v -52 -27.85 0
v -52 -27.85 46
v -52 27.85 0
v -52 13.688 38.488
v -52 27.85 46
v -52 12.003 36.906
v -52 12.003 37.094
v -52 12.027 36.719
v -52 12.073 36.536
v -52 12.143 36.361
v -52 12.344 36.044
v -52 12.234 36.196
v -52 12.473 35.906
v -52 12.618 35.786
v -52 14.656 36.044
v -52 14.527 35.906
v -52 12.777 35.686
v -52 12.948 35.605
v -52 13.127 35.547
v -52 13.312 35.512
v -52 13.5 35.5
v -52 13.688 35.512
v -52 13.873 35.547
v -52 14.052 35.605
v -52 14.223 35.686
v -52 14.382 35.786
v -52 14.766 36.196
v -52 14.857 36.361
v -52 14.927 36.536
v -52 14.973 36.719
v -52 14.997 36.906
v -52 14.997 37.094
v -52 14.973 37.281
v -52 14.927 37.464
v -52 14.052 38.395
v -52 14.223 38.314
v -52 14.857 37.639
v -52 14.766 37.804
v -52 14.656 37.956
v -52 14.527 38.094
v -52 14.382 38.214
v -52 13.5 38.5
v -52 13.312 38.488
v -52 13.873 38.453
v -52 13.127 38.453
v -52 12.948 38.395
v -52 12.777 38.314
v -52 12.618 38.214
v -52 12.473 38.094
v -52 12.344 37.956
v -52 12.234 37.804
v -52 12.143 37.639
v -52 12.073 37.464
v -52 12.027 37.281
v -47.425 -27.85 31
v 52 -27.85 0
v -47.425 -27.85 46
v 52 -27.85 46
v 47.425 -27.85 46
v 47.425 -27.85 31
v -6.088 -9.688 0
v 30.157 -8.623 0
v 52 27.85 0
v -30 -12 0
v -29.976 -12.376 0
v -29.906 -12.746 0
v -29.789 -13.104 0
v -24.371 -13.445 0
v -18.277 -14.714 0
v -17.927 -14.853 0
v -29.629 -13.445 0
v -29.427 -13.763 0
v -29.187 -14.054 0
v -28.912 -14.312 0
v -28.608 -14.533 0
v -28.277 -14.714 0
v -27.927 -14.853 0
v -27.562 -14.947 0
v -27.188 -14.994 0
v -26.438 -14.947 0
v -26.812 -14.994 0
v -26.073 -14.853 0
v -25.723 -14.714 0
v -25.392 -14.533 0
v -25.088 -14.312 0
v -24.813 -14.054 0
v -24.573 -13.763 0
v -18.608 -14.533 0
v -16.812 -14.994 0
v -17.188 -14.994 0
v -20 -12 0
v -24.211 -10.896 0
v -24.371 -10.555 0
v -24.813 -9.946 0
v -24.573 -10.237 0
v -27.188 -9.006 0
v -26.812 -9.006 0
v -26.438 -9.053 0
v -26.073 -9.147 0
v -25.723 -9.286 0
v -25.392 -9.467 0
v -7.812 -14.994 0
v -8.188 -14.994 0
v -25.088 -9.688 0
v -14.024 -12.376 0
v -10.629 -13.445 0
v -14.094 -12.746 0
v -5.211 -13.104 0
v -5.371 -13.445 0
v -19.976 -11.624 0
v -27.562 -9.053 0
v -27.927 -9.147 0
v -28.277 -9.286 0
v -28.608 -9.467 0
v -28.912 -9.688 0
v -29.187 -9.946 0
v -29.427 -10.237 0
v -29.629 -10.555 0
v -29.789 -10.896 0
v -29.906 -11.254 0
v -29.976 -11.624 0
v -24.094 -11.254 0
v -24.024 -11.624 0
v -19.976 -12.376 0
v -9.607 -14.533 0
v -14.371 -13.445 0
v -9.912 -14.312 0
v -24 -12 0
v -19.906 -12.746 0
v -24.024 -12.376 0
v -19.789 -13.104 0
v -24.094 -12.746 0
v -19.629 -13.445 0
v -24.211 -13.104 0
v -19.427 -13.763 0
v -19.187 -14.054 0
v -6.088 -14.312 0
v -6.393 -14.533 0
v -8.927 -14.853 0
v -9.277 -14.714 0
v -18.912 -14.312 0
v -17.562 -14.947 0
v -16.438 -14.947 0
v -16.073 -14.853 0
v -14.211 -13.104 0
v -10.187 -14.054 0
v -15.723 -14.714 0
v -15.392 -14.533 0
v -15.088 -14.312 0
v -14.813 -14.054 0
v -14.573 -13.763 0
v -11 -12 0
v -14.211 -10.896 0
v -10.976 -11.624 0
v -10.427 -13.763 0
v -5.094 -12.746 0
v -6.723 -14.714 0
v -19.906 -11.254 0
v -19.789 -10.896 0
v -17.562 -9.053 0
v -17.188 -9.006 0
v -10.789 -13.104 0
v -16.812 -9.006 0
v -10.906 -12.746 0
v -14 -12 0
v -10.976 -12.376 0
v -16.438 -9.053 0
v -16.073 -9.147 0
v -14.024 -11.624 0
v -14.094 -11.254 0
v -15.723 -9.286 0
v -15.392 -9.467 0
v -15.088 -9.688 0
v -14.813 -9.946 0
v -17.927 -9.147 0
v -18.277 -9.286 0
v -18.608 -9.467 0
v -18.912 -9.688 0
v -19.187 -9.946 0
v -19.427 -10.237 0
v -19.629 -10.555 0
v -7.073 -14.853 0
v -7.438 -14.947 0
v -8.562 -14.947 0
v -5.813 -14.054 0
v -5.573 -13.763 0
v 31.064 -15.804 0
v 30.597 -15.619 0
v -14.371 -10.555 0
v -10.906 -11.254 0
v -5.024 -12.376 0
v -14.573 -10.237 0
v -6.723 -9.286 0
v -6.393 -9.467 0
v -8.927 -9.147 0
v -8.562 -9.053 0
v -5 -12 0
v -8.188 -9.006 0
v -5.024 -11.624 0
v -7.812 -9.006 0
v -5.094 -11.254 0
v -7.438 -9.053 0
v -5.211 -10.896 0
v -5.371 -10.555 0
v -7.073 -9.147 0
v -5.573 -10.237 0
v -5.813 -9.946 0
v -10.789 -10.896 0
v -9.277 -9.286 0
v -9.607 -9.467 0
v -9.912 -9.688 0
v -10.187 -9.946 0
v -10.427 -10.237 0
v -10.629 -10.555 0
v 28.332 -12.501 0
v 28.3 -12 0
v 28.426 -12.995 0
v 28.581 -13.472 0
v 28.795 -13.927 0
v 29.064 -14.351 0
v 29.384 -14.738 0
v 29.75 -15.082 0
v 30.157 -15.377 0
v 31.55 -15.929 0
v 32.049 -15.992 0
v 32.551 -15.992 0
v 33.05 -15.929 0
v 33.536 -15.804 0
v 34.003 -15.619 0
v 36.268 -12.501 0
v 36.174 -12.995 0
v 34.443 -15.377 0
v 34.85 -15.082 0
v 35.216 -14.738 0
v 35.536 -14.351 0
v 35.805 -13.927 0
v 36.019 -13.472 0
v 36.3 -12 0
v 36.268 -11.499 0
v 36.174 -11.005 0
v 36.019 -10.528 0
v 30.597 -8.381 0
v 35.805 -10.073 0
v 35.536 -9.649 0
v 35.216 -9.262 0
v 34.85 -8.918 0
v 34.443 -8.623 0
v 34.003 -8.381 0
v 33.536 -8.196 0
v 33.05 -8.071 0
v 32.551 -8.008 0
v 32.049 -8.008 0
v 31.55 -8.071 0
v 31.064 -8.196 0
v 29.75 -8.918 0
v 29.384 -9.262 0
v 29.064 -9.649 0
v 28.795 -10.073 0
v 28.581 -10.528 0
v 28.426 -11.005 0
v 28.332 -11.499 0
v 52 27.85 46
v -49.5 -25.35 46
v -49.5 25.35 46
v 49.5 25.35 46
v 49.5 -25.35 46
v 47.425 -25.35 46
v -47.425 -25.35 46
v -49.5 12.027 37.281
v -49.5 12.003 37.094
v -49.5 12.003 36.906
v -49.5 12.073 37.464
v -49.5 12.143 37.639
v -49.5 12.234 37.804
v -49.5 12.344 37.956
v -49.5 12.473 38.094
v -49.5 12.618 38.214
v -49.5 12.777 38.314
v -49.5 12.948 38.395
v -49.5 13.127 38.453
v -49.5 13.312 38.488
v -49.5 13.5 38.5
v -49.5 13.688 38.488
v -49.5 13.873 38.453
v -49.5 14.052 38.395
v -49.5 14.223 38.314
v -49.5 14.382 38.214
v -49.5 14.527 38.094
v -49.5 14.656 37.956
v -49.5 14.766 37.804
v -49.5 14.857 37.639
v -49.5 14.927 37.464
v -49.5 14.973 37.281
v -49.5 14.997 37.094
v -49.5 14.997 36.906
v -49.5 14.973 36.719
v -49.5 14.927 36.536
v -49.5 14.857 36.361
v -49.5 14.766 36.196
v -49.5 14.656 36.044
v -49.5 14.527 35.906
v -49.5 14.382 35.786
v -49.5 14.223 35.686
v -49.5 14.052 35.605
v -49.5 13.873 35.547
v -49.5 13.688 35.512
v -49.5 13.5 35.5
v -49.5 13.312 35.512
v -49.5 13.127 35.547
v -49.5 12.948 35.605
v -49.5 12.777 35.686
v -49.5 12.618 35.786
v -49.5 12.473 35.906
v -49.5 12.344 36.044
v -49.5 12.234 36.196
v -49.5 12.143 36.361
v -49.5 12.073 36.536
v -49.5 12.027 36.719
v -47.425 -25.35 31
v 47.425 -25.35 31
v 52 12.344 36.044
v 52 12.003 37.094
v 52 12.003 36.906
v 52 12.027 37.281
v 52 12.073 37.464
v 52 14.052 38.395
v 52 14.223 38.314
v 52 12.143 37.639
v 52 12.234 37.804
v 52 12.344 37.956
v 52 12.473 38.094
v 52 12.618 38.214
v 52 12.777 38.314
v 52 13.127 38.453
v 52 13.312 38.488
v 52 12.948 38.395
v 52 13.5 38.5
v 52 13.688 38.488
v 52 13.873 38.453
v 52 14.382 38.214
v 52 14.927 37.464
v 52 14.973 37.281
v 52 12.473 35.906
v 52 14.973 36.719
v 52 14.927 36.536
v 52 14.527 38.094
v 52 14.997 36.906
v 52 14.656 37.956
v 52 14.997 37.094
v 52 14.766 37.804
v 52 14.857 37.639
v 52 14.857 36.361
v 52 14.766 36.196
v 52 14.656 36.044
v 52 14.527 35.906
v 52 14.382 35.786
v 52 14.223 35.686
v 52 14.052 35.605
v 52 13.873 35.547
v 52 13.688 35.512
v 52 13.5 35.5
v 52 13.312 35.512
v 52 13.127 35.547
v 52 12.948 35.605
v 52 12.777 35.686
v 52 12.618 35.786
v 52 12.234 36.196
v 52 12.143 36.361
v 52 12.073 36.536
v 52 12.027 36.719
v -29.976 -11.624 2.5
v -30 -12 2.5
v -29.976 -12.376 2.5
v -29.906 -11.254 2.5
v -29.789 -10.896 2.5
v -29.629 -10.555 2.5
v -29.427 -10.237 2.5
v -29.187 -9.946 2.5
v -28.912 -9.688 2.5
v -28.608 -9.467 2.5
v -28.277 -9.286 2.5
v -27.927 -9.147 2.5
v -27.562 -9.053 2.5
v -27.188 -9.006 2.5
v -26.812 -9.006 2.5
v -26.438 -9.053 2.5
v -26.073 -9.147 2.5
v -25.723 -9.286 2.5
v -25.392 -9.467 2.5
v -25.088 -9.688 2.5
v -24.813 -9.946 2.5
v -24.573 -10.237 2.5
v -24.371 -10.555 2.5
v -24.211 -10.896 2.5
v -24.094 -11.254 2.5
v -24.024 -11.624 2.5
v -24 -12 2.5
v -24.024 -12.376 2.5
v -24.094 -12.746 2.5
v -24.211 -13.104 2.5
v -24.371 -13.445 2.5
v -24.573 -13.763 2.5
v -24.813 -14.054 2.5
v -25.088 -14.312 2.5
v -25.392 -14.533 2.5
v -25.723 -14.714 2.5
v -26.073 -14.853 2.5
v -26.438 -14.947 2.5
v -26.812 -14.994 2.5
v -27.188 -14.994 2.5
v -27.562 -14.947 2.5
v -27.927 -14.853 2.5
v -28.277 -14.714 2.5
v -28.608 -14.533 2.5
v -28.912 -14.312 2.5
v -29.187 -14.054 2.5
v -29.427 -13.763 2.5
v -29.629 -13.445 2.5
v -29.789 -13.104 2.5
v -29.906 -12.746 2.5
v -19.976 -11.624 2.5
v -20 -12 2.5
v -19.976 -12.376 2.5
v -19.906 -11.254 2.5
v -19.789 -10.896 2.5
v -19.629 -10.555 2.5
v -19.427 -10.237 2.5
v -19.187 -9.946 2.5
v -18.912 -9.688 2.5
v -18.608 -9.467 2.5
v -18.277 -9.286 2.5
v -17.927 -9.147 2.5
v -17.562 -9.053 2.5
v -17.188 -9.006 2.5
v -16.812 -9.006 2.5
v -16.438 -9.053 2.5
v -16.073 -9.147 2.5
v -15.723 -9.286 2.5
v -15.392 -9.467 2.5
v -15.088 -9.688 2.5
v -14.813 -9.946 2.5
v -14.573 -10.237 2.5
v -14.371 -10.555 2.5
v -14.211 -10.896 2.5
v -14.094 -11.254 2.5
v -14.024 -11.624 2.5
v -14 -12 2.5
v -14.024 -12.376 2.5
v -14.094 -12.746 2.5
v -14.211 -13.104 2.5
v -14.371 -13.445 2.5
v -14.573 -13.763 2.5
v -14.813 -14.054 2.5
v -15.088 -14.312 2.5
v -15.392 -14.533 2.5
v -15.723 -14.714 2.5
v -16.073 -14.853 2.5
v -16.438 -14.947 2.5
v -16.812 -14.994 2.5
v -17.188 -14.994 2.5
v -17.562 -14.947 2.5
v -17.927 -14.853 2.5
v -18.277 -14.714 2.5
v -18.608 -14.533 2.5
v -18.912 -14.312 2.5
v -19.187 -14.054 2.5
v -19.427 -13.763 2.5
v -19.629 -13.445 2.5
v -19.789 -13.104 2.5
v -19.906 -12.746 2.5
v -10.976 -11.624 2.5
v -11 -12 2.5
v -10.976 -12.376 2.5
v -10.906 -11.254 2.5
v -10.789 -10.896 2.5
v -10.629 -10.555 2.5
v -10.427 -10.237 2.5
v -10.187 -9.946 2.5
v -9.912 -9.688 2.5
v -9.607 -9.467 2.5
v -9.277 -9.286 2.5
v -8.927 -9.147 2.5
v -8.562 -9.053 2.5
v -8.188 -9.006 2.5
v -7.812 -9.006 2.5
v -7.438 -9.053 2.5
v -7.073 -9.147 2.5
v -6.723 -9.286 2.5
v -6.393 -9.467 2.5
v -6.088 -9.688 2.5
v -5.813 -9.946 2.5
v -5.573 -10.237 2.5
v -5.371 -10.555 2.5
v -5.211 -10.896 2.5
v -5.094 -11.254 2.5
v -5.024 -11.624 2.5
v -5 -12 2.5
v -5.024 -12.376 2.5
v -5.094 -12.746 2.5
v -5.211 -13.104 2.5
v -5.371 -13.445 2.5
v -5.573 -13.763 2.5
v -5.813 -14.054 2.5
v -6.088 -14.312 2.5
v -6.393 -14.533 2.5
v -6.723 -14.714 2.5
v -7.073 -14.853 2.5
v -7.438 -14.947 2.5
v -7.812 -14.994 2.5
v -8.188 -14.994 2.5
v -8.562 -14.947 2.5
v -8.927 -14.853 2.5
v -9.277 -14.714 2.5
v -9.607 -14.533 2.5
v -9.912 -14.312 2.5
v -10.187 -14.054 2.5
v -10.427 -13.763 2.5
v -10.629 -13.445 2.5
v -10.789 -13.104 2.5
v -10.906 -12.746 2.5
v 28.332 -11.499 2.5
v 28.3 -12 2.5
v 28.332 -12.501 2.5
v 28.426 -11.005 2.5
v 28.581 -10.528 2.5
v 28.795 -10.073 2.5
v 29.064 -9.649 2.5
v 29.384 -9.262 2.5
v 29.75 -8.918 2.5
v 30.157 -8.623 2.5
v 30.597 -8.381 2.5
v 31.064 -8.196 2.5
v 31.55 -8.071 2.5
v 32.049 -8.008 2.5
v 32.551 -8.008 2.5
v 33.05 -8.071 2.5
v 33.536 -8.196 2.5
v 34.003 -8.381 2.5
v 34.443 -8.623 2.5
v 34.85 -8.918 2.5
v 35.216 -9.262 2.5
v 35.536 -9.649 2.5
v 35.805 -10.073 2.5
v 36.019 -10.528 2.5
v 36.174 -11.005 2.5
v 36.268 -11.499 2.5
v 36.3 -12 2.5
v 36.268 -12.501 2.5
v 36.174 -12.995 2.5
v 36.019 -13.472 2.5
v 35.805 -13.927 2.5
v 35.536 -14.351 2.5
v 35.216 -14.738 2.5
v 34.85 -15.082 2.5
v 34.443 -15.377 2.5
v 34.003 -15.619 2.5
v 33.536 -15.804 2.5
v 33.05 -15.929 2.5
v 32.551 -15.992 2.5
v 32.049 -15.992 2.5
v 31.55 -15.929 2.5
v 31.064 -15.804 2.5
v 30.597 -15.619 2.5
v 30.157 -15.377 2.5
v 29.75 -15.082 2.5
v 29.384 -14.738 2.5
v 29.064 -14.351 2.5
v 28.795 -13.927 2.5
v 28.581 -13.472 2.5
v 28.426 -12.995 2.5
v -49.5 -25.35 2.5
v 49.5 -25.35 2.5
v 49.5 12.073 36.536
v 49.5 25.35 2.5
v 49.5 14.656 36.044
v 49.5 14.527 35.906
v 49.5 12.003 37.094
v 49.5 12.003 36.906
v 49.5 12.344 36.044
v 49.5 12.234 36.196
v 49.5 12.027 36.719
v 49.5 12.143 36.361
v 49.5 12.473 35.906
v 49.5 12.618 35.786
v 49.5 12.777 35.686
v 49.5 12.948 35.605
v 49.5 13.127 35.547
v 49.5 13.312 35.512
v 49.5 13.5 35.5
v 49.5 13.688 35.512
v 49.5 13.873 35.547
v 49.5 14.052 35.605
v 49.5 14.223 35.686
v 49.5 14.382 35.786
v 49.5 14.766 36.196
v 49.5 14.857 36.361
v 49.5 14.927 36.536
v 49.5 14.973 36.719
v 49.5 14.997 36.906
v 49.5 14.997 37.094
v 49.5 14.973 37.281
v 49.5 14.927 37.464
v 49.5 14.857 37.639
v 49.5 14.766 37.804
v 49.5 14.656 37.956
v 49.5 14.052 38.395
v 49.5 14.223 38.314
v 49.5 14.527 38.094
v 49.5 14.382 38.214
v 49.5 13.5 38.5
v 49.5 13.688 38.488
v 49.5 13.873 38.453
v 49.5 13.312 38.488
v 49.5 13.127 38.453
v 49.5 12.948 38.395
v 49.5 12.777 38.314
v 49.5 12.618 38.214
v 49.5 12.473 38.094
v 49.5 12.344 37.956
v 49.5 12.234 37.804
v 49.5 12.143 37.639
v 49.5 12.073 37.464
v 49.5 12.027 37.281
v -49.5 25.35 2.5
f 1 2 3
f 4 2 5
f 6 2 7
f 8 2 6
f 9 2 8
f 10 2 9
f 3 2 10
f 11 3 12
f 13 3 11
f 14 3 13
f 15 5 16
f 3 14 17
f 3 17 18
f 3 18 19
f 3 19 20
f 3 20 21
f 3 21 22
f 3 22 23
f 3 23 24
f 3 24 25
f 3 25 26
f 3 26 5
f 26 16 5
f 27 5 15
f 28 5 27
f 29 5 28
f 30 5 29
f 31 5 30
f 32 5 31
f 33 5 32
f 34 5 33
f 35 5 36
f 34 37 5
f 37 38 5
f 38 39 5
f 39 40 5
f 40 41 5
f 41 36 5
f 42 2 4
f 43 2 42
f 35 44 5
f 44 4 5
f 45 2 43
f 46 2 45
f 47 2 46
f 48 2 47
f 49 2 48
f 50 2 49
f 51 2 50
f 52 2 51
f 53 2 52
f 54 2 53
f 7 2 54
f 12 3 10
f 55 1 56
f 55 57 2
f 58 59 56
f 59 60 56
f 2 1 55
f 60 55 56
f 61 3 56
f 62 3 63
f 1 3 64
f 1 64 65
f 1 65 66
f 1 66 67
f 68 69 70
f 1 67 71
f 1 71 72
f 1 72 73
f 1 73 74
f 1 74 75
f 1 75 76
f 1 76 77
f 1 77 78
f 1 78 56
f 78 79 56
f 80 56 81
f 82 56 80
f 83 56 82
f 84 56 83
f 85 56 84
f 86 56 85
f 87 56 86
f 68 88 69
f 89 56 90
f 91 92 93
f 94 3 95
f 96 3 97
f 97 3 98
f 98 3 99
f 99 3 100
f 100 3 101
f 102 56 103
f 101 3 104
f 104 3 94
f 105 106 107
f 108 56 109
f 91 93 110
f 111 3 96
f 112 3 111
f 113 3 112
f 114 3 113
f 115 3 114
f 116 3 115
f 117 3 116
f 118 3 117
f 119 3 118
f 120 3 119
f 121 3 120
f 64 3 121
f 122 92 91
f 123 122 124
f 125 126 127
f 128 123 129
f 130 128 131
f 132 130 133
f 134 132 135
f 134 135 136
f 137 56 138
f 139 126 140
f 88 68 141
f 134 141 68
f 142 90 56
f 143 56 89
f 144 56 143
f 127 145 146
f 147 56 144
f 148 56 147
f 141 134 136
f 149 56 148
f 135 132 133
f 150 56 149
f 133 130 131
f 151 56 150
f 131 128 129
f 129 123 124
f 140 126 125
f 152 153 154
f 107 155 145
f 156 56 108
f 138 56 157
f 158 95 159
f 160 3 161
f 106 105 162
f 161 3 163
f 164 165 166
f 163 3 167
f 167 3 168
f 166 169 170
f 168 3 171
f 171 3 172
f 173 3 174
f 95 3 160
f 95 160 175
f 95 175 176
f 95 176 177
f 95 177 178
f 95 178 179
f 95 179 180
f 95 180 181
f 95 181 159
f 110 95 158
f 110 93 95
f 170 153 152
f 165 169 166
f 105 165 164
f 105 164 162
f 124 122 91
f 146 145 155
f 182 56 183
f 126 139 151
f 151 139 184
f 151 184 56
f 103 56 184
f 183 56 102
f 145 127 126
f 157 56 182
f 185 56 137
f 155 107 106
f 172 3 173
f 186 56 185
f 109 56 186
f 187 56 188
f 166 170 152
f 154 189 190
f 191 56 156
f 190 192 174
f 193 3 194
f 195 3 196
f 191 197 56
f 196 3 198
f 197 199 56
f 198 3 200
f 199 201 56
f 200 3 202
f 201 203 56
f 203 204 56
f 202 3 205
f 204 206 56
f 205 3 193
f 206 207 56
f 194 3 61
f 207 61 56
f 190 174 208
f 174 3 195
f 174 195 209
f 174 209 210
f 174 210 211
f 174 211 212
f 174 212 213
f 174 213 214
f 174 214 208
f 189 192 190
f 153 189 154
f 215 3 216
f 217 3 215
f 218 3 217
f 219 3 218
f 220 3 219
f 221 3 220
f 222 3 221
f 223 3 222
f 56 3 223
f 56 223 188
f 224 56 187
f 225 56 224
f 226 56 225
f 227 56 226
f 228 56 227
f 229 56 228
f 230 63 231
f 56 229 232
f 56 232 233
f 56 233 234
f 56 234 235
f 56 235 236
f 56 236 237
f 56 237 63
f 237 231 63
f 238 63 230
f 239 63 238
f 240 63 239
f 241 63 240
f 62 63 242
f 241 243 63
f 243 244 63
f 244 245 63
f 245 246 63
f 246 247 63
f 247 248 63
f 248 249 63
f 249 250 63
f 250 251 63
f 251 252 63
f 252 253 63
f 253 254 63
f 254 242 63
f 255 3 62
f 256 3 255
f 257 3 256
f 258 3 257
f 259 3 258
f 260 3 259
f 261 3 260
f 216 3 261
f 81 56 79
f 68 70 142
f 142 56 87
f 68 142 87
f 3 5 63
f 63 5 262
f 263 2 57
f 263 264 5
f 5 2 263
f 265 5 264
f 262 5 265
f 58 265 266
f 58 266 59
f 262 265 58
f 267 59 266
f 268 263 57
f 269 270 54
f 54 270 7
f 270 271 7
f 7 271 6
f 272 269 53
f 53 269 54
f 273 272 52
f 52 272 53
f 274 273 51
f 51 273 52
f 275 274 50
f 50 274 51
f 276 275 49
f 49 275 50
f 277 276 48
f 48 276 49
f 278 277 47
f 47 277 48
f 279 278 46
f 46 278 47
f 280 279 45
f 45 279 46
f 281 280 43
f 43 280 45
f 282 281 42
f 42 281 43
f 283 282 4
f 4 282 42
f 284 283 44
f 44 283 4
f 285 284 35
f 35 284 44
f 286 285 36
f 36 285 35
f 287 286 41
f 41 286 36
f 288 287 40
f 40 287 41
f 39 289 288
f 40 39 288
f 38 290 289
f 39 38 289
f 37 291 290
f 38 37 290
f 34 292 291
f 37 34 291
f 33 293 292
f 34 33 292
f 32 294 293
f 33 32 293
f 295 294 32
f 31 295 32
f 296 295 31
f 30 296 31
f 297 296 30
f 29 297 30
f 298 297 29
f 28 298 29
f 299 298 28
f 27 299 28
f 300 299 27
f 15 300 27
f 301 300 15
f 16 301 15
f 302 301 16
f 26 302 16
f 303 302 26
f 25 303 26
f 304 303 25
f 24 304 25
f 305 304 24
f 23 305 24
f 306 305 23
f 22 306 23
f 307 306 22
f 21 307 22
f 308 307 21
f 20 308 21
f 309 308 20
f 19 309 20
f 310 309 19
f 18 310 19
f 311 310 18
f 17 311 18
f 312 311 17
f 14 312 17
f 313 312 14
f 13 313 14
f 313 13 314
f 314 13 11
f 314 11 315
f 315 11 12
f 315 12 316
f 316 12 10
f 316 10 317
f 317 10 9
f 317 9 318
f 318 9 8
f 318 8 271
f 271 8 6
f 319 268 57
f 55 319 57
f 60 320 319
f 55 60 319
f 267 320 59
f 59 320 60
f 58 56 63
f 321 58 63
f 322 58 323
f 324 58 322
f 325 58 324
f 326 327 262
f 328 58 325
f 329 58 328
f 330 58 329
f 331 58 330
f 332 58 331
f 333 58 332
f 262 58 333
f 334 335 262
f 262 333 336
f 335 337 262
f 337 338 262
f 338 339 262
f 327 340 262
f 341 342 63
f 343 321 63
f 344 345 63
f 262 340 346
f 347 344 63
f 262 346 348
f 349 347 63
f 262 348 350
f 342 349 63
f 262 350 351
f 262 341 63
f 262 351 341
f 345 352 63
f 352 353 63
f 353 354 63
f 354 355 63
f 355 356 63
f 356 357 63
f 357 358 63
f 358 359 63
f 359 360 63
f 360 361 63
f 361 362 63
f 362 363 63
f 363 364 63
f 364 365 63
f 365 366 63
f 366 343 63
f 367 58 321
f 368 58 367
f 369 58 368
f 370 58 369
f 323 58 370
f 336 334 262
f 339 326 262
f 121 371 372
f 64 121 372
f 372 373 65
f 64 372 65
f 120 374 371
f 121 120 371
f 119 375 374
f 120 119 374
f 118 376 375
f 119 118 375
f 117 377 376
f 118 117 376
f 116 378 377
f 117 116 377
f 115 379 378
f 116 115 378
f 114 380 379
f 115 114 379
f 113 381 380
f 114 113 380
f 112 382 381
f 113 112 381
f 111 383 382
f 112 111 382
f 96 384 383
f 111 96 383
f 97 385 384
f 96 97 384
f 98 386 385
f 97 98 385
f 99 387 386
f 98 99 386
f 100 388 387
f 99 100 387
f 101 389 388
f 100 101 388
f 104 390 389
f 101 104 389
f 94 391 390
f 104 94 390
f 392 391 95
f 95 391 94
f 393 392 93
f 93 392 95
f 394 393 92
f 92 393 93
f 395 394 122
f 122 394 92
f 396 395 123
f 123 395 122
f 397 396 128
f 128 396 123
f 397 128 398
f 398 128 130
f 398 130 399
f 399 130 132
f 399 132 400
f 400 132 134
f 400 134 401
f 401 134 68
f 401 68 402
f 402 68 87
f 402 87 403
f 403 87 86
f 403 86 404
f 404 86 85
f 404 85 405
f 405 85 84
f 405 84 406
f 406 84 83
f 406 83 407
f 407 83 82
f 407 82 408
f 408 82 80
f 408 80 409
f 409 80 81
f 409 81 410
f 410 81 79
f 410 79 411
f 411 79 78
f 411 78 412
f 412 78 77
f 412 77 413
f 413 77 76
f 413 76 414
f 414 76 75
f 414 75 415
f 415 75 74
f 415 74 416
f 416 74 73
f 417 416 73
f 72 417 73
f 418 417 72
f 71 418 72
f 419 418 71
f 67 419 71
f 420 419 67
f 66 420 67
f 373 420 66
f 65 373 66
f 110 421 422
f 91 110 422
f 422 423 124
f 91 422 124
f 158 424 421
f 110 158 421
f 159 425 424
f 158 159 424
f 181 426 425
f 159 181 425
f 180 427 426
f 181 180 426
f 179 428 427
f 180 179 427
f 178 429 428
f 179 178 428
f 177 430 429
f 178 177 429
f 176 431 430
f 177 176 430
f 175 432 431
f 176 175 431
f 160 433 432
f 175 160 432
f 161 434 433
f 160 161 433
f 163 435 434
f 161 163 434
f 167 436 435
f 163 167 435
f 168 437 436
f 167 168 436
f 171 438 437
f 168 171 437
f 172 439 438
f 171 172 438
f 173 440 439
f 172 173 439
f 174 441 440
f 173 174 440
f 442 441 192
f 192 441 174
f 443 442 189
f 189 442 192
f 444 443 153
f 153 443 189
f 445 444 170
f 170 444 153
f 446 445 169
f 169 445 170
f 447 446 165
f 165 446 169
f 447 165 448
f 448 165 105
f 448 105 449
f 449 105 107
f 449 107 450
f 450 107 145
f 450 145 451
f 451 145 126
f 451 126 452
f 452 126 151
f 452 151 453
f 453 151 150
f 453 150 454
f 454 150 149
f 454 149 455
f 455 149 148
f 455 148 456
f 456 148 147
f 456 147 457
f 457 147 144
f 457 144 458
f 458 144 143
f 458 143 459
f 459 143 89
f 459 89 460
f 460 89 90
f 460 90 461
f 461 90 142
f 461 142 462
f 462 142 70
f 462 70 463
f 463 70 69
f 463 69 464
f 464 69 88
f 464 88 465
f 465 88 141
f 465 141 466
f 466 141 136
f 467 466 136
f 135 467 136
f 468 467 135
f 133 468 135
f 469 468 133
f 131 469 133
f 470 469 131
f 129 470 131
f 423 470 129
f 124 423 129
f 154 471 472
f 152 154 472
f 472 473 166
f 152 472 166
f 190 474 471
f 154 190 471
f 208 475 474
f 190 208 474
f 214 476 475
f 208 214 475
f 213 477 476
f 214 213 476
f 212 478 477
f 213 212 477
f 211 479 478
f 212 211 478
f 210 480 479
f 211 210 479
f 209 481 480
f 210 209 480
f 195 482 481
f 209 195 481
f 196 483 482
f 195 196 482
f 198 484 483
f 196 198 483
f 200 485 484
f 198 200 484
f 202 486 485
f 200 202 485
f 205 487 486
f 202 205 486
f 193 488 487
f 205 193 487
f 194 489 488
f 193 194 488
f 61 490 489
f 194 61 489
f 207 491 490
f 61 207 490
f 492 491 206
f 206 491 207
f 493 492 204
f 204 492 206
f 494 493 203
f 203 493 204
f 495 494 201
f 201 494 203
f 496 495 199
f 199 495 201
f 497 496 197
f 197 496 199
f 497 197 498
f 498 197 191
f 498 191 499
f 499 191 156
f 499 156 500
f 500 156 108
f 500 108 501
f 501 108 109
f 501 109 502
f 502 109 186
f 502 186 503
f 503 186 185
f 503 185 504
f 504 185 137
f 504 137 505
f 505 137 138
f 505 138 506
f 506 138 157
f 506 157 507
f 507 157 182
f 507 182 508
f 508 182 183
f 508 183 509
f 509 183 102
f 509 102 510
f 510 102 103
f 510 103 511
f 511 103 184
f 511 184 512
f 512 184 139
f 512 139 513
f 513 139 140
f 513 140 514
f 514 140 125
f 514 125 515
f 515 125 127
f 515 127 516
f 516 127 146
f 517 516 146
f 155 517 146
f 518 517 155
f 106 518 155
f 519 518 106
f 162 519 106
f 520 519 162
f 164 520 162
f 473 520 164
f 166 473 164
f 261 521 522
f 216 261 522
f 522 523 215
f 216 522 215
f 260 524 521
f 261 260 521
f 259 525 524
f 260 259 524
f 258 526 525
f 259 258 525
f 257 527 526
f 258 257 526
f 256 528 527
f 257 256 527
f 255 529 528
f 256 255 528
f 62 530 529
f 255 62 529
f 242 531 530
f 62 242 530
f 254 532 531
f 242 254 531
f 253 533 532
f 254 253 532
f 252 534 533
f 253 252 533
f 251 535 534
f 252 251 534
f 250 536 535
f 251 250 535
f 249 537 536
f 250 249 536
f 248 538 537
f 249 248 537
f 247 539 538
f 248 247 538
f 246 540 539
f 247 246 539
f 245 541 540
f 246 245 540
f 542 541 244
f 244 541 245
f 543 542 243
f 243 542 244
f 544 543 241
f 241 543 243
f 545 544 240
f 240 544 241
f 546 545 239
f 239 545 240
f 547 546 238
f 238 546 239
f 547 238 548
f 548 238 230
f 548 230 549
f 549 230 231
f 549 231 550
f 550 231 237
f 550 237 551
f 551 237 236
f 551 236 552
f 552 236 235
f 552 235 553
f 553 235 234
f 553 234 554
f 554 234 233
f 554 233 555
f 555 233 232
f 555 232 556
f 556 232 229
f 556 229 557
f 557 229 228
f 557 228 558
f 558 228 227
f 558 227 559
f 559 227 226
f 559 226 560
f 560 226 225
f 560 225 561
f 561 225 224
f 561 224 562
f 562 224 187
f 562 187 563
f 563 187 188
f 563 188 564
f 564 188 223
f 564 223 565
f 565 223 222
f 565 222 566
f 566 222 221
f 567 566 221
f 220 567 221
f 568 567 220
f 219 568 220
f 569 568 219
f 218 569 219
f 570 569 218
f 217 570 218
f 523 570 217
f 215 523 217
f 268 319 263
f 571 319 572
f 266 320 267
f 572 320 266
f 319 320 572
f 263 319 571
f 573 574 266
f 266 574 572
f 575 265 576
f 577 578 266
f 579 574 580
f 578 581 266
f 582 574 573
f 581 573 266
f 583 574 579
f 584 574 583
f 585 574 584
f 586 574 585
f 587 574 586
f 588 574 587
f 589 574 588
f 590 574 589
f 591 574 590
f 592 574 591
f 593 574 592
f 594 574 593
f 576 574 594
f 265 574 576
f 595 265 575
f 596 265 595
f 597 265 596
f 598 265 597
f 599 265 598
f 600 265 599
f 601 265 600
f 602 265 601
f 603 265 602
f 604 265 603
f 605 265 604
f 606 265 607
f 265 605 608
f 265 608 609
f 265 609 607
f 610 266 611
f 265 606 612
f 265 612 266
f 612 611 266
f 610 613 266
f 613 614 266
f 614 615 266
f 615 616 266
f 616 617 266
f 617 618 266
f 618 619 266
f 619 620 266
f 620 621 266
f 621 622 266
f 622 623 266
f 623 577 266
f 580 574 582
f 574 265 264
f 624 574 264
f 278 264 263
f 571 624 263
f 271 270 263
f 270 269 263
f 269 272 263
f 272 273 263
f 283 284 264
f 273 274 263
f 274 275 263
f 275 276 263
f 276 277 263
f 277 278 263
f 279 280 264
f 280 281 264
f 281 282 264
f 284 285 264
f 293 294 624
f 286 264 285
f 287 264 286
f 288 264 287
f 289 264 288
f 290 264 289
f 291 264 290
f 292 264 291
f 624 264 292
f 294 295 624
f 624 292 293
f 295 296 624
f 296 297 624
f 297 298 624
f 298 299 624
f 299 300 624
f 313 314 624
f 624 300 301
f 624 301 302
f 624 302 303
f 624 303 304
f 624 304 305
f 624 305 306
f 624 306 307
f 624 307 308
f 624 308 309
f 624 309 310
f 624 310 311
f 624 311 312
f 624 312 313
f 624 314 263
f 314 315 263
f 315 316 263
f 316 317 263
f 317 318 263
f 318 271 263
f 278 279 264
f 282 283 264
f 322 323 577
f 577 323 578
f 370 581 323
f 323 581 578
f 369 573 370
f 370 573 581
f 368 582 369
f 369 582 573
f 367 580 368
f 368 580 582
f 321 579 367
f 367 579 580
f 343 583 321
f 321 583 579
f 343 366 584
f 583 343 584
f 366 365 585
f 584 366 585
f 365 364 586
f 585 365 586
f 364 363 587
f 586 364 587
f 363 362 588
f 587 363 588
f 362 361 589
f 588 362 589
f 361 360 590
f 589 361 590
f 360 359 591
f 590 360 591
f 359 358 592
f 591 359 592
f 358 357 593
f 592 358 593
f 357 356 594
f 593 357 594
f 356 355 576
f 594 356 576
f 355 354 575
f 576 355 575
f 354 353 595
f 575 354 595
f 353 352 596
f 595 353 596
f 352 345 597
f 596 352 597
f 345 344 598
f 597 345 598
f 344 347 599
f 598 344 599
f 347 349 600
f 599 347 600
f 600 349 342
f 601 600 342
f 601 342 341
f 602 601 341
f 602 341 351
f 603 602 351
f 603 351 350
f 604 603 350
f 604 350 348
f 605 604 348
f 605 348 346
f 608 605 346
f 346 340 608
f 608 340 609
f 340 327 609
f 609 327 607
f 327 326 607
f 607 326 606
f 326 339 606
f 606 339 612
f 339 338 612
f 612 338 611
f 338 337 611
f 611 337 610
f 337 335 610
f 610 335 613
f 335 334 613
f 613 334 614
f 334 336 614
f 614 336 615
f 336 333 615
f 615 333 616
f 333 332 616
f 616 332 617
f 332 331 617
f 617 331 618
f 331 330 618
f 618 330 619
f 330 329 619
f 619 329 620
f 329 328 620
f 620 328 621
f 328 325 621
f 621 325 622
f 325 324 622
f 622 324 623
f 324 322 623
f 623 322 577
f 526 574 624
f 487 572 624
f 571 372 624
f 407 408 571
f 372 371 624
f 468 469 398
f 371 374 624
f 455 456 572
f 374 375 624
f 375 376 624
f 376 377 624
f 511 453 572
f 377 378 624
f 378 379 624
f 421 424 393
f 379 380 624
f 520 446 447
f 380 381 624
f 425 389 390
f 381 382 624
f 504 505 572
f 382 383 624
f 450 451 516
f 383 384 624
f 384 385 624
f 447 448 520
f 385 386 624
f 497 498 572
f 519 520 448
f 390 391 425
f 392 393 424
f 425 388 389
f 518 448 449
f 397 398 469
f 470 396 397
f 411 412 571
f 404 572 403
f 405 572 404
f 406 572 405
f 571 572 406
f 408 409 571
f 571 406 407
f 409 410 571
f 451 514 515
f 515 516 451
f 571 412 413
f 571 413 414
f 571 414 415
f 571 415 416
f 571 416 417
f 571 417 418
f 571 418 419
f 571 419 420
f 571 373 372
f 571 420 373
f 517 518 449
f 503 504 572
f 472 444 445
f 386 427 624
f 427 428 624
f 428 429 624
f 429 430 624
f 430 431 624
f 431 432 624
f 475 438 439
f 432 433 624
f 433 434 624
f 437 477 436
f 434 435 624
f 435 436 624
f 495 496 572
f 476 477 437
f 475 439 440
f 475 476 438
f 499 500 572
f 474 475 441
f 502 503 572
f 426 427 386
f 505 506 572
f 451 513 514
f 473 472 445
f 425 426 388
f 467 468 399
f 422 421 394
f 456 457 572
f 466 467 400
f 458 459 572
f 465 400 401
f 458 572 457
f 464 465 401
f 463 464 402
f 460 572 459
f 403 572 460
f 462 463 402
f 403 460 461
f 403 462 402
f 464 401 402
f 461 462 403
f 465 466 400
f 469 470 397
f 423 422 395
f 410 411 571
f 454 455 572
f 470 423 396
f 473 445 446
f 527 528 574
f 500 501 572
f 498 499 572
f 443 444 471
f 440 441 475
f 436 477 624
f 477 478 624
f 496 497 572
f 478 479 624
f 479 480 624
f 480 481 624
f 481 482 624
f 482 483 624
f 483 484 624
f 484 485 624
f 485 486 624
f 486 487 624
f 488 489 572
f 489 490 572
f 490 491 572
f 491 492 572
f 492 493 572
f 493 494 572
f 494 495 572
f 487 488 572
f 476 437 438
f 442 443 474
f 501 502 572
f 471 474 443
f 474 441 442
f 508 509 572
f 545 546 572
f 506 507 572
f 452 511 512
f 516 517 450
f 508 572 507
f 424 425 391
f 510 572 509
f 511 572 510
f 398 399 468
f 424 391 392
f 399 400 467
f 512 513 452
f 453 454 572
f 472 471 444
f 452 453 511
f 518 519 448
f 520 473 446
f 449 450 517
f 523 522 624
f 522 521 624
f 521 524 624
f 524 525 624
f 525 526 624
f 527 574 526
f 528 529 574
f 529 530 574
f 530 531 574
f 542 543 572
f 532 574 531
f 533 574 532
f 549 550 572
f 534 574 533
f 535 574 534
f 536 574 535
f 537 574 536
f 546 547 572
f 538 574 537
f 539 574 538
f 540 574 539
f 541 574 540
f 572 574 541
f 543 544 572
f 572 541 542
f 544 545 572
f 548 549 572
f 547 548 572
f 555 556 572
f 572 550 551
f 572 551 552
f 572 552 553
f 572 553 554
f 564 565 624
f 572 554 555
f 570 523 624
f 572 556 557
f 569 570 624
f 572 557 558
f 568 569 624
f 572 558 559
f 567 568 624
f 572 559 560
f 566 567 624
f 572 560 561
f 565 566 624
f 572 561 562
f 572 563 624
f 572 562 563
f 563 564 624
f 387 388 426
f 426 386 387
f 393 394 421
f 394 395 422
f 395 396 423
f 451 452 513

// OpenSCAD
EP = 2.5;

L = 98.6;
H = 50.3;
P_ext = 46;

L_in = L + .4;
H_in = H + .4;
P_in = 100;

L_ext = L_in + 2*EP;
H_ext = H_in + 2*EP;

difference(){
    translate([0,0,P_ext/2])
        cube([L_ext,H_ext,P_ext], center=true);

    translate([0,0,P_in/2 + EP])
        cube([L_in,H_in,P_in], center=true);

    translate([32.3,-12,0])
    cylinder(d=8, h=100, $fn=50, center=true);

	for( i = [ 	[-8,-12,0],
                [-17,-12,0],
            	[-27,-12,0] ]){

		translate(i)
                cylinder(d=6, h=100, $fn=50, center=true);
        
	}

    translate([0,13.5,P_ext-9])
        rotate([0,90,0])
            cylinder(d=3, h = 200, center=true, $fn=50);

    translate([0, -H_ext/2, 30/2+P_ext-15])
        cube([L-1.5*EP, 30, 30], center=true);

}
